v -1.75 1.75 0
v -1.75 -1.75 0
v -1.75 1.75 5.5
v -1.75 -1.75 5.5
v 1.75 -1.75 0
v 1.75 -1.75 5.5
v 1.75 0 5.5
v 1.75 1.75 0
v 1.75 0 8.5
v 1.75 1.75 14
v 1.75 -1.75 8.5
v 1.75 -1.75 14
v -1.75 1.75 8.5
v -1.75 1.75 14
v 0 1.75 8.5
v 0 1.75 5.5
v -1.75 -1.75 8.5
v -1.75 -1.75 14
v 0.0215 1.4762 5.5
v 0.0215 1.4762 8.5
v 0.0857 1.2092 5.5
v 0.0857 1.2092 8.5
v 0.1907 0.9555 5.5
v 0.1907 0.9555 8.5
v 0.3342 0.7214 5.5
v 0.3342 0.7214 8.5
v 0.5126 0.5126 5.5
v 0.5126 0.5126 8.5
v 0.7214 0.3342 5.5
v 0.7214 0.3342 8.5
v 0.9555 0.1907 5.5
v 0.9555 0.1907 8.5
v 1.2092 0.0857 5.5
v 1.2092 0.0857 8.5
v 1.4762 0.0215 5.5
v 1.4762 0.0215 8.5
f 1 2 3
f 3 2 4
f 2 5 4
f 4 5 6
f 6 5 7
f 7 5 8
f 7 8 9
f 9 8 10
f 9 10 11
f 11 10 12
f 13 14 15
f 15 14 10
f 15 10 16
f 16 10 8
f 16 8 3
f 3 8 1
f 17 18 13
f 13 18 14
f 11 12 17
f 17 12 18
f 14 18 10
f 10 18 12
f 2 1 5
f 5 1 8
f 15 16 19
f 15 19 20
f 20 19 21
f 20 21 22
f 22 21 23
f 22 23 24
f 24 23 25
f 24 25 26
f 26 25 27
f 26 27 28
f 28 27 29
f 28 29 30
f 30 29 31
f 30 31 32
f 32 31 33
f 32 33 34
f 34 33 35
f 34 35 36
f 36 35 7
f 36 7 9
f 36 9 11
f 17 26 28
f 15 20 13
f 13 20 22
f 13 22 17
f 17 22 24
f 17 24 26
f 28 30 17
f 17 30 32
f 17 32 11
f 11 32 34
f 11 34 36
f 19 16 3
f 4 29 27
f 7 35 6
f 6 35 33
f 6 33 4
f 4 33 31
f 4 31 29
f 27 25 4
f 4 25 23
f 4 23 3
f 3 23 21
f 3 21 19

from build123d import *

# Parameters (mm, degrees)
SKETCH1_W               = 3.5
SKETCH1_H               = 3.5
BOSS_EXTRUDE1_DEPTH     = 14
CUT_EXTRUDE1_DEPTH      = 1.5
CUT_EXTRUDE1_DEPTH_BACK = 1.5


with BuildPart() as part:
    # Sketch1 → Boss-Extrude1 (new body)
    with BuildSketch(Plane.XY):
        Rectangle(SKETCH1_W, SKETCH1_H)
    extrude(amount=BOSS_EXTRUDE1_DEPTH)

    # Sketch2 → Cut-Extrude1 (cut, two sides)
    with BuildSketch(Plane.XY.offset(7)) as cut_extrude1_sk:
        with BuildLine():
            Line((1.75, -1.75), (1.75, 0))
            ThreePointArc((1.75, 0), (0.512563133, 0.512563133), (0, 1.75))
            Line((0, 1.75), (-1.75, 1.75))
            Line((-1.75, 1.75), (-1.75, -1.75))
            Line((-1.75, -1.75), (1.75, -1.75))
        make_face()
    extrude(amount=CUT_EXTRUDE1_DEPTH, mode=Mode.SUBTRACT)
    extrude(cut_extrude1_sk.sketch, amount=-CUT_EXTRUDE1_DEPTH_BACK, mode=Mode.SUBTRACT)


solid = part.part
